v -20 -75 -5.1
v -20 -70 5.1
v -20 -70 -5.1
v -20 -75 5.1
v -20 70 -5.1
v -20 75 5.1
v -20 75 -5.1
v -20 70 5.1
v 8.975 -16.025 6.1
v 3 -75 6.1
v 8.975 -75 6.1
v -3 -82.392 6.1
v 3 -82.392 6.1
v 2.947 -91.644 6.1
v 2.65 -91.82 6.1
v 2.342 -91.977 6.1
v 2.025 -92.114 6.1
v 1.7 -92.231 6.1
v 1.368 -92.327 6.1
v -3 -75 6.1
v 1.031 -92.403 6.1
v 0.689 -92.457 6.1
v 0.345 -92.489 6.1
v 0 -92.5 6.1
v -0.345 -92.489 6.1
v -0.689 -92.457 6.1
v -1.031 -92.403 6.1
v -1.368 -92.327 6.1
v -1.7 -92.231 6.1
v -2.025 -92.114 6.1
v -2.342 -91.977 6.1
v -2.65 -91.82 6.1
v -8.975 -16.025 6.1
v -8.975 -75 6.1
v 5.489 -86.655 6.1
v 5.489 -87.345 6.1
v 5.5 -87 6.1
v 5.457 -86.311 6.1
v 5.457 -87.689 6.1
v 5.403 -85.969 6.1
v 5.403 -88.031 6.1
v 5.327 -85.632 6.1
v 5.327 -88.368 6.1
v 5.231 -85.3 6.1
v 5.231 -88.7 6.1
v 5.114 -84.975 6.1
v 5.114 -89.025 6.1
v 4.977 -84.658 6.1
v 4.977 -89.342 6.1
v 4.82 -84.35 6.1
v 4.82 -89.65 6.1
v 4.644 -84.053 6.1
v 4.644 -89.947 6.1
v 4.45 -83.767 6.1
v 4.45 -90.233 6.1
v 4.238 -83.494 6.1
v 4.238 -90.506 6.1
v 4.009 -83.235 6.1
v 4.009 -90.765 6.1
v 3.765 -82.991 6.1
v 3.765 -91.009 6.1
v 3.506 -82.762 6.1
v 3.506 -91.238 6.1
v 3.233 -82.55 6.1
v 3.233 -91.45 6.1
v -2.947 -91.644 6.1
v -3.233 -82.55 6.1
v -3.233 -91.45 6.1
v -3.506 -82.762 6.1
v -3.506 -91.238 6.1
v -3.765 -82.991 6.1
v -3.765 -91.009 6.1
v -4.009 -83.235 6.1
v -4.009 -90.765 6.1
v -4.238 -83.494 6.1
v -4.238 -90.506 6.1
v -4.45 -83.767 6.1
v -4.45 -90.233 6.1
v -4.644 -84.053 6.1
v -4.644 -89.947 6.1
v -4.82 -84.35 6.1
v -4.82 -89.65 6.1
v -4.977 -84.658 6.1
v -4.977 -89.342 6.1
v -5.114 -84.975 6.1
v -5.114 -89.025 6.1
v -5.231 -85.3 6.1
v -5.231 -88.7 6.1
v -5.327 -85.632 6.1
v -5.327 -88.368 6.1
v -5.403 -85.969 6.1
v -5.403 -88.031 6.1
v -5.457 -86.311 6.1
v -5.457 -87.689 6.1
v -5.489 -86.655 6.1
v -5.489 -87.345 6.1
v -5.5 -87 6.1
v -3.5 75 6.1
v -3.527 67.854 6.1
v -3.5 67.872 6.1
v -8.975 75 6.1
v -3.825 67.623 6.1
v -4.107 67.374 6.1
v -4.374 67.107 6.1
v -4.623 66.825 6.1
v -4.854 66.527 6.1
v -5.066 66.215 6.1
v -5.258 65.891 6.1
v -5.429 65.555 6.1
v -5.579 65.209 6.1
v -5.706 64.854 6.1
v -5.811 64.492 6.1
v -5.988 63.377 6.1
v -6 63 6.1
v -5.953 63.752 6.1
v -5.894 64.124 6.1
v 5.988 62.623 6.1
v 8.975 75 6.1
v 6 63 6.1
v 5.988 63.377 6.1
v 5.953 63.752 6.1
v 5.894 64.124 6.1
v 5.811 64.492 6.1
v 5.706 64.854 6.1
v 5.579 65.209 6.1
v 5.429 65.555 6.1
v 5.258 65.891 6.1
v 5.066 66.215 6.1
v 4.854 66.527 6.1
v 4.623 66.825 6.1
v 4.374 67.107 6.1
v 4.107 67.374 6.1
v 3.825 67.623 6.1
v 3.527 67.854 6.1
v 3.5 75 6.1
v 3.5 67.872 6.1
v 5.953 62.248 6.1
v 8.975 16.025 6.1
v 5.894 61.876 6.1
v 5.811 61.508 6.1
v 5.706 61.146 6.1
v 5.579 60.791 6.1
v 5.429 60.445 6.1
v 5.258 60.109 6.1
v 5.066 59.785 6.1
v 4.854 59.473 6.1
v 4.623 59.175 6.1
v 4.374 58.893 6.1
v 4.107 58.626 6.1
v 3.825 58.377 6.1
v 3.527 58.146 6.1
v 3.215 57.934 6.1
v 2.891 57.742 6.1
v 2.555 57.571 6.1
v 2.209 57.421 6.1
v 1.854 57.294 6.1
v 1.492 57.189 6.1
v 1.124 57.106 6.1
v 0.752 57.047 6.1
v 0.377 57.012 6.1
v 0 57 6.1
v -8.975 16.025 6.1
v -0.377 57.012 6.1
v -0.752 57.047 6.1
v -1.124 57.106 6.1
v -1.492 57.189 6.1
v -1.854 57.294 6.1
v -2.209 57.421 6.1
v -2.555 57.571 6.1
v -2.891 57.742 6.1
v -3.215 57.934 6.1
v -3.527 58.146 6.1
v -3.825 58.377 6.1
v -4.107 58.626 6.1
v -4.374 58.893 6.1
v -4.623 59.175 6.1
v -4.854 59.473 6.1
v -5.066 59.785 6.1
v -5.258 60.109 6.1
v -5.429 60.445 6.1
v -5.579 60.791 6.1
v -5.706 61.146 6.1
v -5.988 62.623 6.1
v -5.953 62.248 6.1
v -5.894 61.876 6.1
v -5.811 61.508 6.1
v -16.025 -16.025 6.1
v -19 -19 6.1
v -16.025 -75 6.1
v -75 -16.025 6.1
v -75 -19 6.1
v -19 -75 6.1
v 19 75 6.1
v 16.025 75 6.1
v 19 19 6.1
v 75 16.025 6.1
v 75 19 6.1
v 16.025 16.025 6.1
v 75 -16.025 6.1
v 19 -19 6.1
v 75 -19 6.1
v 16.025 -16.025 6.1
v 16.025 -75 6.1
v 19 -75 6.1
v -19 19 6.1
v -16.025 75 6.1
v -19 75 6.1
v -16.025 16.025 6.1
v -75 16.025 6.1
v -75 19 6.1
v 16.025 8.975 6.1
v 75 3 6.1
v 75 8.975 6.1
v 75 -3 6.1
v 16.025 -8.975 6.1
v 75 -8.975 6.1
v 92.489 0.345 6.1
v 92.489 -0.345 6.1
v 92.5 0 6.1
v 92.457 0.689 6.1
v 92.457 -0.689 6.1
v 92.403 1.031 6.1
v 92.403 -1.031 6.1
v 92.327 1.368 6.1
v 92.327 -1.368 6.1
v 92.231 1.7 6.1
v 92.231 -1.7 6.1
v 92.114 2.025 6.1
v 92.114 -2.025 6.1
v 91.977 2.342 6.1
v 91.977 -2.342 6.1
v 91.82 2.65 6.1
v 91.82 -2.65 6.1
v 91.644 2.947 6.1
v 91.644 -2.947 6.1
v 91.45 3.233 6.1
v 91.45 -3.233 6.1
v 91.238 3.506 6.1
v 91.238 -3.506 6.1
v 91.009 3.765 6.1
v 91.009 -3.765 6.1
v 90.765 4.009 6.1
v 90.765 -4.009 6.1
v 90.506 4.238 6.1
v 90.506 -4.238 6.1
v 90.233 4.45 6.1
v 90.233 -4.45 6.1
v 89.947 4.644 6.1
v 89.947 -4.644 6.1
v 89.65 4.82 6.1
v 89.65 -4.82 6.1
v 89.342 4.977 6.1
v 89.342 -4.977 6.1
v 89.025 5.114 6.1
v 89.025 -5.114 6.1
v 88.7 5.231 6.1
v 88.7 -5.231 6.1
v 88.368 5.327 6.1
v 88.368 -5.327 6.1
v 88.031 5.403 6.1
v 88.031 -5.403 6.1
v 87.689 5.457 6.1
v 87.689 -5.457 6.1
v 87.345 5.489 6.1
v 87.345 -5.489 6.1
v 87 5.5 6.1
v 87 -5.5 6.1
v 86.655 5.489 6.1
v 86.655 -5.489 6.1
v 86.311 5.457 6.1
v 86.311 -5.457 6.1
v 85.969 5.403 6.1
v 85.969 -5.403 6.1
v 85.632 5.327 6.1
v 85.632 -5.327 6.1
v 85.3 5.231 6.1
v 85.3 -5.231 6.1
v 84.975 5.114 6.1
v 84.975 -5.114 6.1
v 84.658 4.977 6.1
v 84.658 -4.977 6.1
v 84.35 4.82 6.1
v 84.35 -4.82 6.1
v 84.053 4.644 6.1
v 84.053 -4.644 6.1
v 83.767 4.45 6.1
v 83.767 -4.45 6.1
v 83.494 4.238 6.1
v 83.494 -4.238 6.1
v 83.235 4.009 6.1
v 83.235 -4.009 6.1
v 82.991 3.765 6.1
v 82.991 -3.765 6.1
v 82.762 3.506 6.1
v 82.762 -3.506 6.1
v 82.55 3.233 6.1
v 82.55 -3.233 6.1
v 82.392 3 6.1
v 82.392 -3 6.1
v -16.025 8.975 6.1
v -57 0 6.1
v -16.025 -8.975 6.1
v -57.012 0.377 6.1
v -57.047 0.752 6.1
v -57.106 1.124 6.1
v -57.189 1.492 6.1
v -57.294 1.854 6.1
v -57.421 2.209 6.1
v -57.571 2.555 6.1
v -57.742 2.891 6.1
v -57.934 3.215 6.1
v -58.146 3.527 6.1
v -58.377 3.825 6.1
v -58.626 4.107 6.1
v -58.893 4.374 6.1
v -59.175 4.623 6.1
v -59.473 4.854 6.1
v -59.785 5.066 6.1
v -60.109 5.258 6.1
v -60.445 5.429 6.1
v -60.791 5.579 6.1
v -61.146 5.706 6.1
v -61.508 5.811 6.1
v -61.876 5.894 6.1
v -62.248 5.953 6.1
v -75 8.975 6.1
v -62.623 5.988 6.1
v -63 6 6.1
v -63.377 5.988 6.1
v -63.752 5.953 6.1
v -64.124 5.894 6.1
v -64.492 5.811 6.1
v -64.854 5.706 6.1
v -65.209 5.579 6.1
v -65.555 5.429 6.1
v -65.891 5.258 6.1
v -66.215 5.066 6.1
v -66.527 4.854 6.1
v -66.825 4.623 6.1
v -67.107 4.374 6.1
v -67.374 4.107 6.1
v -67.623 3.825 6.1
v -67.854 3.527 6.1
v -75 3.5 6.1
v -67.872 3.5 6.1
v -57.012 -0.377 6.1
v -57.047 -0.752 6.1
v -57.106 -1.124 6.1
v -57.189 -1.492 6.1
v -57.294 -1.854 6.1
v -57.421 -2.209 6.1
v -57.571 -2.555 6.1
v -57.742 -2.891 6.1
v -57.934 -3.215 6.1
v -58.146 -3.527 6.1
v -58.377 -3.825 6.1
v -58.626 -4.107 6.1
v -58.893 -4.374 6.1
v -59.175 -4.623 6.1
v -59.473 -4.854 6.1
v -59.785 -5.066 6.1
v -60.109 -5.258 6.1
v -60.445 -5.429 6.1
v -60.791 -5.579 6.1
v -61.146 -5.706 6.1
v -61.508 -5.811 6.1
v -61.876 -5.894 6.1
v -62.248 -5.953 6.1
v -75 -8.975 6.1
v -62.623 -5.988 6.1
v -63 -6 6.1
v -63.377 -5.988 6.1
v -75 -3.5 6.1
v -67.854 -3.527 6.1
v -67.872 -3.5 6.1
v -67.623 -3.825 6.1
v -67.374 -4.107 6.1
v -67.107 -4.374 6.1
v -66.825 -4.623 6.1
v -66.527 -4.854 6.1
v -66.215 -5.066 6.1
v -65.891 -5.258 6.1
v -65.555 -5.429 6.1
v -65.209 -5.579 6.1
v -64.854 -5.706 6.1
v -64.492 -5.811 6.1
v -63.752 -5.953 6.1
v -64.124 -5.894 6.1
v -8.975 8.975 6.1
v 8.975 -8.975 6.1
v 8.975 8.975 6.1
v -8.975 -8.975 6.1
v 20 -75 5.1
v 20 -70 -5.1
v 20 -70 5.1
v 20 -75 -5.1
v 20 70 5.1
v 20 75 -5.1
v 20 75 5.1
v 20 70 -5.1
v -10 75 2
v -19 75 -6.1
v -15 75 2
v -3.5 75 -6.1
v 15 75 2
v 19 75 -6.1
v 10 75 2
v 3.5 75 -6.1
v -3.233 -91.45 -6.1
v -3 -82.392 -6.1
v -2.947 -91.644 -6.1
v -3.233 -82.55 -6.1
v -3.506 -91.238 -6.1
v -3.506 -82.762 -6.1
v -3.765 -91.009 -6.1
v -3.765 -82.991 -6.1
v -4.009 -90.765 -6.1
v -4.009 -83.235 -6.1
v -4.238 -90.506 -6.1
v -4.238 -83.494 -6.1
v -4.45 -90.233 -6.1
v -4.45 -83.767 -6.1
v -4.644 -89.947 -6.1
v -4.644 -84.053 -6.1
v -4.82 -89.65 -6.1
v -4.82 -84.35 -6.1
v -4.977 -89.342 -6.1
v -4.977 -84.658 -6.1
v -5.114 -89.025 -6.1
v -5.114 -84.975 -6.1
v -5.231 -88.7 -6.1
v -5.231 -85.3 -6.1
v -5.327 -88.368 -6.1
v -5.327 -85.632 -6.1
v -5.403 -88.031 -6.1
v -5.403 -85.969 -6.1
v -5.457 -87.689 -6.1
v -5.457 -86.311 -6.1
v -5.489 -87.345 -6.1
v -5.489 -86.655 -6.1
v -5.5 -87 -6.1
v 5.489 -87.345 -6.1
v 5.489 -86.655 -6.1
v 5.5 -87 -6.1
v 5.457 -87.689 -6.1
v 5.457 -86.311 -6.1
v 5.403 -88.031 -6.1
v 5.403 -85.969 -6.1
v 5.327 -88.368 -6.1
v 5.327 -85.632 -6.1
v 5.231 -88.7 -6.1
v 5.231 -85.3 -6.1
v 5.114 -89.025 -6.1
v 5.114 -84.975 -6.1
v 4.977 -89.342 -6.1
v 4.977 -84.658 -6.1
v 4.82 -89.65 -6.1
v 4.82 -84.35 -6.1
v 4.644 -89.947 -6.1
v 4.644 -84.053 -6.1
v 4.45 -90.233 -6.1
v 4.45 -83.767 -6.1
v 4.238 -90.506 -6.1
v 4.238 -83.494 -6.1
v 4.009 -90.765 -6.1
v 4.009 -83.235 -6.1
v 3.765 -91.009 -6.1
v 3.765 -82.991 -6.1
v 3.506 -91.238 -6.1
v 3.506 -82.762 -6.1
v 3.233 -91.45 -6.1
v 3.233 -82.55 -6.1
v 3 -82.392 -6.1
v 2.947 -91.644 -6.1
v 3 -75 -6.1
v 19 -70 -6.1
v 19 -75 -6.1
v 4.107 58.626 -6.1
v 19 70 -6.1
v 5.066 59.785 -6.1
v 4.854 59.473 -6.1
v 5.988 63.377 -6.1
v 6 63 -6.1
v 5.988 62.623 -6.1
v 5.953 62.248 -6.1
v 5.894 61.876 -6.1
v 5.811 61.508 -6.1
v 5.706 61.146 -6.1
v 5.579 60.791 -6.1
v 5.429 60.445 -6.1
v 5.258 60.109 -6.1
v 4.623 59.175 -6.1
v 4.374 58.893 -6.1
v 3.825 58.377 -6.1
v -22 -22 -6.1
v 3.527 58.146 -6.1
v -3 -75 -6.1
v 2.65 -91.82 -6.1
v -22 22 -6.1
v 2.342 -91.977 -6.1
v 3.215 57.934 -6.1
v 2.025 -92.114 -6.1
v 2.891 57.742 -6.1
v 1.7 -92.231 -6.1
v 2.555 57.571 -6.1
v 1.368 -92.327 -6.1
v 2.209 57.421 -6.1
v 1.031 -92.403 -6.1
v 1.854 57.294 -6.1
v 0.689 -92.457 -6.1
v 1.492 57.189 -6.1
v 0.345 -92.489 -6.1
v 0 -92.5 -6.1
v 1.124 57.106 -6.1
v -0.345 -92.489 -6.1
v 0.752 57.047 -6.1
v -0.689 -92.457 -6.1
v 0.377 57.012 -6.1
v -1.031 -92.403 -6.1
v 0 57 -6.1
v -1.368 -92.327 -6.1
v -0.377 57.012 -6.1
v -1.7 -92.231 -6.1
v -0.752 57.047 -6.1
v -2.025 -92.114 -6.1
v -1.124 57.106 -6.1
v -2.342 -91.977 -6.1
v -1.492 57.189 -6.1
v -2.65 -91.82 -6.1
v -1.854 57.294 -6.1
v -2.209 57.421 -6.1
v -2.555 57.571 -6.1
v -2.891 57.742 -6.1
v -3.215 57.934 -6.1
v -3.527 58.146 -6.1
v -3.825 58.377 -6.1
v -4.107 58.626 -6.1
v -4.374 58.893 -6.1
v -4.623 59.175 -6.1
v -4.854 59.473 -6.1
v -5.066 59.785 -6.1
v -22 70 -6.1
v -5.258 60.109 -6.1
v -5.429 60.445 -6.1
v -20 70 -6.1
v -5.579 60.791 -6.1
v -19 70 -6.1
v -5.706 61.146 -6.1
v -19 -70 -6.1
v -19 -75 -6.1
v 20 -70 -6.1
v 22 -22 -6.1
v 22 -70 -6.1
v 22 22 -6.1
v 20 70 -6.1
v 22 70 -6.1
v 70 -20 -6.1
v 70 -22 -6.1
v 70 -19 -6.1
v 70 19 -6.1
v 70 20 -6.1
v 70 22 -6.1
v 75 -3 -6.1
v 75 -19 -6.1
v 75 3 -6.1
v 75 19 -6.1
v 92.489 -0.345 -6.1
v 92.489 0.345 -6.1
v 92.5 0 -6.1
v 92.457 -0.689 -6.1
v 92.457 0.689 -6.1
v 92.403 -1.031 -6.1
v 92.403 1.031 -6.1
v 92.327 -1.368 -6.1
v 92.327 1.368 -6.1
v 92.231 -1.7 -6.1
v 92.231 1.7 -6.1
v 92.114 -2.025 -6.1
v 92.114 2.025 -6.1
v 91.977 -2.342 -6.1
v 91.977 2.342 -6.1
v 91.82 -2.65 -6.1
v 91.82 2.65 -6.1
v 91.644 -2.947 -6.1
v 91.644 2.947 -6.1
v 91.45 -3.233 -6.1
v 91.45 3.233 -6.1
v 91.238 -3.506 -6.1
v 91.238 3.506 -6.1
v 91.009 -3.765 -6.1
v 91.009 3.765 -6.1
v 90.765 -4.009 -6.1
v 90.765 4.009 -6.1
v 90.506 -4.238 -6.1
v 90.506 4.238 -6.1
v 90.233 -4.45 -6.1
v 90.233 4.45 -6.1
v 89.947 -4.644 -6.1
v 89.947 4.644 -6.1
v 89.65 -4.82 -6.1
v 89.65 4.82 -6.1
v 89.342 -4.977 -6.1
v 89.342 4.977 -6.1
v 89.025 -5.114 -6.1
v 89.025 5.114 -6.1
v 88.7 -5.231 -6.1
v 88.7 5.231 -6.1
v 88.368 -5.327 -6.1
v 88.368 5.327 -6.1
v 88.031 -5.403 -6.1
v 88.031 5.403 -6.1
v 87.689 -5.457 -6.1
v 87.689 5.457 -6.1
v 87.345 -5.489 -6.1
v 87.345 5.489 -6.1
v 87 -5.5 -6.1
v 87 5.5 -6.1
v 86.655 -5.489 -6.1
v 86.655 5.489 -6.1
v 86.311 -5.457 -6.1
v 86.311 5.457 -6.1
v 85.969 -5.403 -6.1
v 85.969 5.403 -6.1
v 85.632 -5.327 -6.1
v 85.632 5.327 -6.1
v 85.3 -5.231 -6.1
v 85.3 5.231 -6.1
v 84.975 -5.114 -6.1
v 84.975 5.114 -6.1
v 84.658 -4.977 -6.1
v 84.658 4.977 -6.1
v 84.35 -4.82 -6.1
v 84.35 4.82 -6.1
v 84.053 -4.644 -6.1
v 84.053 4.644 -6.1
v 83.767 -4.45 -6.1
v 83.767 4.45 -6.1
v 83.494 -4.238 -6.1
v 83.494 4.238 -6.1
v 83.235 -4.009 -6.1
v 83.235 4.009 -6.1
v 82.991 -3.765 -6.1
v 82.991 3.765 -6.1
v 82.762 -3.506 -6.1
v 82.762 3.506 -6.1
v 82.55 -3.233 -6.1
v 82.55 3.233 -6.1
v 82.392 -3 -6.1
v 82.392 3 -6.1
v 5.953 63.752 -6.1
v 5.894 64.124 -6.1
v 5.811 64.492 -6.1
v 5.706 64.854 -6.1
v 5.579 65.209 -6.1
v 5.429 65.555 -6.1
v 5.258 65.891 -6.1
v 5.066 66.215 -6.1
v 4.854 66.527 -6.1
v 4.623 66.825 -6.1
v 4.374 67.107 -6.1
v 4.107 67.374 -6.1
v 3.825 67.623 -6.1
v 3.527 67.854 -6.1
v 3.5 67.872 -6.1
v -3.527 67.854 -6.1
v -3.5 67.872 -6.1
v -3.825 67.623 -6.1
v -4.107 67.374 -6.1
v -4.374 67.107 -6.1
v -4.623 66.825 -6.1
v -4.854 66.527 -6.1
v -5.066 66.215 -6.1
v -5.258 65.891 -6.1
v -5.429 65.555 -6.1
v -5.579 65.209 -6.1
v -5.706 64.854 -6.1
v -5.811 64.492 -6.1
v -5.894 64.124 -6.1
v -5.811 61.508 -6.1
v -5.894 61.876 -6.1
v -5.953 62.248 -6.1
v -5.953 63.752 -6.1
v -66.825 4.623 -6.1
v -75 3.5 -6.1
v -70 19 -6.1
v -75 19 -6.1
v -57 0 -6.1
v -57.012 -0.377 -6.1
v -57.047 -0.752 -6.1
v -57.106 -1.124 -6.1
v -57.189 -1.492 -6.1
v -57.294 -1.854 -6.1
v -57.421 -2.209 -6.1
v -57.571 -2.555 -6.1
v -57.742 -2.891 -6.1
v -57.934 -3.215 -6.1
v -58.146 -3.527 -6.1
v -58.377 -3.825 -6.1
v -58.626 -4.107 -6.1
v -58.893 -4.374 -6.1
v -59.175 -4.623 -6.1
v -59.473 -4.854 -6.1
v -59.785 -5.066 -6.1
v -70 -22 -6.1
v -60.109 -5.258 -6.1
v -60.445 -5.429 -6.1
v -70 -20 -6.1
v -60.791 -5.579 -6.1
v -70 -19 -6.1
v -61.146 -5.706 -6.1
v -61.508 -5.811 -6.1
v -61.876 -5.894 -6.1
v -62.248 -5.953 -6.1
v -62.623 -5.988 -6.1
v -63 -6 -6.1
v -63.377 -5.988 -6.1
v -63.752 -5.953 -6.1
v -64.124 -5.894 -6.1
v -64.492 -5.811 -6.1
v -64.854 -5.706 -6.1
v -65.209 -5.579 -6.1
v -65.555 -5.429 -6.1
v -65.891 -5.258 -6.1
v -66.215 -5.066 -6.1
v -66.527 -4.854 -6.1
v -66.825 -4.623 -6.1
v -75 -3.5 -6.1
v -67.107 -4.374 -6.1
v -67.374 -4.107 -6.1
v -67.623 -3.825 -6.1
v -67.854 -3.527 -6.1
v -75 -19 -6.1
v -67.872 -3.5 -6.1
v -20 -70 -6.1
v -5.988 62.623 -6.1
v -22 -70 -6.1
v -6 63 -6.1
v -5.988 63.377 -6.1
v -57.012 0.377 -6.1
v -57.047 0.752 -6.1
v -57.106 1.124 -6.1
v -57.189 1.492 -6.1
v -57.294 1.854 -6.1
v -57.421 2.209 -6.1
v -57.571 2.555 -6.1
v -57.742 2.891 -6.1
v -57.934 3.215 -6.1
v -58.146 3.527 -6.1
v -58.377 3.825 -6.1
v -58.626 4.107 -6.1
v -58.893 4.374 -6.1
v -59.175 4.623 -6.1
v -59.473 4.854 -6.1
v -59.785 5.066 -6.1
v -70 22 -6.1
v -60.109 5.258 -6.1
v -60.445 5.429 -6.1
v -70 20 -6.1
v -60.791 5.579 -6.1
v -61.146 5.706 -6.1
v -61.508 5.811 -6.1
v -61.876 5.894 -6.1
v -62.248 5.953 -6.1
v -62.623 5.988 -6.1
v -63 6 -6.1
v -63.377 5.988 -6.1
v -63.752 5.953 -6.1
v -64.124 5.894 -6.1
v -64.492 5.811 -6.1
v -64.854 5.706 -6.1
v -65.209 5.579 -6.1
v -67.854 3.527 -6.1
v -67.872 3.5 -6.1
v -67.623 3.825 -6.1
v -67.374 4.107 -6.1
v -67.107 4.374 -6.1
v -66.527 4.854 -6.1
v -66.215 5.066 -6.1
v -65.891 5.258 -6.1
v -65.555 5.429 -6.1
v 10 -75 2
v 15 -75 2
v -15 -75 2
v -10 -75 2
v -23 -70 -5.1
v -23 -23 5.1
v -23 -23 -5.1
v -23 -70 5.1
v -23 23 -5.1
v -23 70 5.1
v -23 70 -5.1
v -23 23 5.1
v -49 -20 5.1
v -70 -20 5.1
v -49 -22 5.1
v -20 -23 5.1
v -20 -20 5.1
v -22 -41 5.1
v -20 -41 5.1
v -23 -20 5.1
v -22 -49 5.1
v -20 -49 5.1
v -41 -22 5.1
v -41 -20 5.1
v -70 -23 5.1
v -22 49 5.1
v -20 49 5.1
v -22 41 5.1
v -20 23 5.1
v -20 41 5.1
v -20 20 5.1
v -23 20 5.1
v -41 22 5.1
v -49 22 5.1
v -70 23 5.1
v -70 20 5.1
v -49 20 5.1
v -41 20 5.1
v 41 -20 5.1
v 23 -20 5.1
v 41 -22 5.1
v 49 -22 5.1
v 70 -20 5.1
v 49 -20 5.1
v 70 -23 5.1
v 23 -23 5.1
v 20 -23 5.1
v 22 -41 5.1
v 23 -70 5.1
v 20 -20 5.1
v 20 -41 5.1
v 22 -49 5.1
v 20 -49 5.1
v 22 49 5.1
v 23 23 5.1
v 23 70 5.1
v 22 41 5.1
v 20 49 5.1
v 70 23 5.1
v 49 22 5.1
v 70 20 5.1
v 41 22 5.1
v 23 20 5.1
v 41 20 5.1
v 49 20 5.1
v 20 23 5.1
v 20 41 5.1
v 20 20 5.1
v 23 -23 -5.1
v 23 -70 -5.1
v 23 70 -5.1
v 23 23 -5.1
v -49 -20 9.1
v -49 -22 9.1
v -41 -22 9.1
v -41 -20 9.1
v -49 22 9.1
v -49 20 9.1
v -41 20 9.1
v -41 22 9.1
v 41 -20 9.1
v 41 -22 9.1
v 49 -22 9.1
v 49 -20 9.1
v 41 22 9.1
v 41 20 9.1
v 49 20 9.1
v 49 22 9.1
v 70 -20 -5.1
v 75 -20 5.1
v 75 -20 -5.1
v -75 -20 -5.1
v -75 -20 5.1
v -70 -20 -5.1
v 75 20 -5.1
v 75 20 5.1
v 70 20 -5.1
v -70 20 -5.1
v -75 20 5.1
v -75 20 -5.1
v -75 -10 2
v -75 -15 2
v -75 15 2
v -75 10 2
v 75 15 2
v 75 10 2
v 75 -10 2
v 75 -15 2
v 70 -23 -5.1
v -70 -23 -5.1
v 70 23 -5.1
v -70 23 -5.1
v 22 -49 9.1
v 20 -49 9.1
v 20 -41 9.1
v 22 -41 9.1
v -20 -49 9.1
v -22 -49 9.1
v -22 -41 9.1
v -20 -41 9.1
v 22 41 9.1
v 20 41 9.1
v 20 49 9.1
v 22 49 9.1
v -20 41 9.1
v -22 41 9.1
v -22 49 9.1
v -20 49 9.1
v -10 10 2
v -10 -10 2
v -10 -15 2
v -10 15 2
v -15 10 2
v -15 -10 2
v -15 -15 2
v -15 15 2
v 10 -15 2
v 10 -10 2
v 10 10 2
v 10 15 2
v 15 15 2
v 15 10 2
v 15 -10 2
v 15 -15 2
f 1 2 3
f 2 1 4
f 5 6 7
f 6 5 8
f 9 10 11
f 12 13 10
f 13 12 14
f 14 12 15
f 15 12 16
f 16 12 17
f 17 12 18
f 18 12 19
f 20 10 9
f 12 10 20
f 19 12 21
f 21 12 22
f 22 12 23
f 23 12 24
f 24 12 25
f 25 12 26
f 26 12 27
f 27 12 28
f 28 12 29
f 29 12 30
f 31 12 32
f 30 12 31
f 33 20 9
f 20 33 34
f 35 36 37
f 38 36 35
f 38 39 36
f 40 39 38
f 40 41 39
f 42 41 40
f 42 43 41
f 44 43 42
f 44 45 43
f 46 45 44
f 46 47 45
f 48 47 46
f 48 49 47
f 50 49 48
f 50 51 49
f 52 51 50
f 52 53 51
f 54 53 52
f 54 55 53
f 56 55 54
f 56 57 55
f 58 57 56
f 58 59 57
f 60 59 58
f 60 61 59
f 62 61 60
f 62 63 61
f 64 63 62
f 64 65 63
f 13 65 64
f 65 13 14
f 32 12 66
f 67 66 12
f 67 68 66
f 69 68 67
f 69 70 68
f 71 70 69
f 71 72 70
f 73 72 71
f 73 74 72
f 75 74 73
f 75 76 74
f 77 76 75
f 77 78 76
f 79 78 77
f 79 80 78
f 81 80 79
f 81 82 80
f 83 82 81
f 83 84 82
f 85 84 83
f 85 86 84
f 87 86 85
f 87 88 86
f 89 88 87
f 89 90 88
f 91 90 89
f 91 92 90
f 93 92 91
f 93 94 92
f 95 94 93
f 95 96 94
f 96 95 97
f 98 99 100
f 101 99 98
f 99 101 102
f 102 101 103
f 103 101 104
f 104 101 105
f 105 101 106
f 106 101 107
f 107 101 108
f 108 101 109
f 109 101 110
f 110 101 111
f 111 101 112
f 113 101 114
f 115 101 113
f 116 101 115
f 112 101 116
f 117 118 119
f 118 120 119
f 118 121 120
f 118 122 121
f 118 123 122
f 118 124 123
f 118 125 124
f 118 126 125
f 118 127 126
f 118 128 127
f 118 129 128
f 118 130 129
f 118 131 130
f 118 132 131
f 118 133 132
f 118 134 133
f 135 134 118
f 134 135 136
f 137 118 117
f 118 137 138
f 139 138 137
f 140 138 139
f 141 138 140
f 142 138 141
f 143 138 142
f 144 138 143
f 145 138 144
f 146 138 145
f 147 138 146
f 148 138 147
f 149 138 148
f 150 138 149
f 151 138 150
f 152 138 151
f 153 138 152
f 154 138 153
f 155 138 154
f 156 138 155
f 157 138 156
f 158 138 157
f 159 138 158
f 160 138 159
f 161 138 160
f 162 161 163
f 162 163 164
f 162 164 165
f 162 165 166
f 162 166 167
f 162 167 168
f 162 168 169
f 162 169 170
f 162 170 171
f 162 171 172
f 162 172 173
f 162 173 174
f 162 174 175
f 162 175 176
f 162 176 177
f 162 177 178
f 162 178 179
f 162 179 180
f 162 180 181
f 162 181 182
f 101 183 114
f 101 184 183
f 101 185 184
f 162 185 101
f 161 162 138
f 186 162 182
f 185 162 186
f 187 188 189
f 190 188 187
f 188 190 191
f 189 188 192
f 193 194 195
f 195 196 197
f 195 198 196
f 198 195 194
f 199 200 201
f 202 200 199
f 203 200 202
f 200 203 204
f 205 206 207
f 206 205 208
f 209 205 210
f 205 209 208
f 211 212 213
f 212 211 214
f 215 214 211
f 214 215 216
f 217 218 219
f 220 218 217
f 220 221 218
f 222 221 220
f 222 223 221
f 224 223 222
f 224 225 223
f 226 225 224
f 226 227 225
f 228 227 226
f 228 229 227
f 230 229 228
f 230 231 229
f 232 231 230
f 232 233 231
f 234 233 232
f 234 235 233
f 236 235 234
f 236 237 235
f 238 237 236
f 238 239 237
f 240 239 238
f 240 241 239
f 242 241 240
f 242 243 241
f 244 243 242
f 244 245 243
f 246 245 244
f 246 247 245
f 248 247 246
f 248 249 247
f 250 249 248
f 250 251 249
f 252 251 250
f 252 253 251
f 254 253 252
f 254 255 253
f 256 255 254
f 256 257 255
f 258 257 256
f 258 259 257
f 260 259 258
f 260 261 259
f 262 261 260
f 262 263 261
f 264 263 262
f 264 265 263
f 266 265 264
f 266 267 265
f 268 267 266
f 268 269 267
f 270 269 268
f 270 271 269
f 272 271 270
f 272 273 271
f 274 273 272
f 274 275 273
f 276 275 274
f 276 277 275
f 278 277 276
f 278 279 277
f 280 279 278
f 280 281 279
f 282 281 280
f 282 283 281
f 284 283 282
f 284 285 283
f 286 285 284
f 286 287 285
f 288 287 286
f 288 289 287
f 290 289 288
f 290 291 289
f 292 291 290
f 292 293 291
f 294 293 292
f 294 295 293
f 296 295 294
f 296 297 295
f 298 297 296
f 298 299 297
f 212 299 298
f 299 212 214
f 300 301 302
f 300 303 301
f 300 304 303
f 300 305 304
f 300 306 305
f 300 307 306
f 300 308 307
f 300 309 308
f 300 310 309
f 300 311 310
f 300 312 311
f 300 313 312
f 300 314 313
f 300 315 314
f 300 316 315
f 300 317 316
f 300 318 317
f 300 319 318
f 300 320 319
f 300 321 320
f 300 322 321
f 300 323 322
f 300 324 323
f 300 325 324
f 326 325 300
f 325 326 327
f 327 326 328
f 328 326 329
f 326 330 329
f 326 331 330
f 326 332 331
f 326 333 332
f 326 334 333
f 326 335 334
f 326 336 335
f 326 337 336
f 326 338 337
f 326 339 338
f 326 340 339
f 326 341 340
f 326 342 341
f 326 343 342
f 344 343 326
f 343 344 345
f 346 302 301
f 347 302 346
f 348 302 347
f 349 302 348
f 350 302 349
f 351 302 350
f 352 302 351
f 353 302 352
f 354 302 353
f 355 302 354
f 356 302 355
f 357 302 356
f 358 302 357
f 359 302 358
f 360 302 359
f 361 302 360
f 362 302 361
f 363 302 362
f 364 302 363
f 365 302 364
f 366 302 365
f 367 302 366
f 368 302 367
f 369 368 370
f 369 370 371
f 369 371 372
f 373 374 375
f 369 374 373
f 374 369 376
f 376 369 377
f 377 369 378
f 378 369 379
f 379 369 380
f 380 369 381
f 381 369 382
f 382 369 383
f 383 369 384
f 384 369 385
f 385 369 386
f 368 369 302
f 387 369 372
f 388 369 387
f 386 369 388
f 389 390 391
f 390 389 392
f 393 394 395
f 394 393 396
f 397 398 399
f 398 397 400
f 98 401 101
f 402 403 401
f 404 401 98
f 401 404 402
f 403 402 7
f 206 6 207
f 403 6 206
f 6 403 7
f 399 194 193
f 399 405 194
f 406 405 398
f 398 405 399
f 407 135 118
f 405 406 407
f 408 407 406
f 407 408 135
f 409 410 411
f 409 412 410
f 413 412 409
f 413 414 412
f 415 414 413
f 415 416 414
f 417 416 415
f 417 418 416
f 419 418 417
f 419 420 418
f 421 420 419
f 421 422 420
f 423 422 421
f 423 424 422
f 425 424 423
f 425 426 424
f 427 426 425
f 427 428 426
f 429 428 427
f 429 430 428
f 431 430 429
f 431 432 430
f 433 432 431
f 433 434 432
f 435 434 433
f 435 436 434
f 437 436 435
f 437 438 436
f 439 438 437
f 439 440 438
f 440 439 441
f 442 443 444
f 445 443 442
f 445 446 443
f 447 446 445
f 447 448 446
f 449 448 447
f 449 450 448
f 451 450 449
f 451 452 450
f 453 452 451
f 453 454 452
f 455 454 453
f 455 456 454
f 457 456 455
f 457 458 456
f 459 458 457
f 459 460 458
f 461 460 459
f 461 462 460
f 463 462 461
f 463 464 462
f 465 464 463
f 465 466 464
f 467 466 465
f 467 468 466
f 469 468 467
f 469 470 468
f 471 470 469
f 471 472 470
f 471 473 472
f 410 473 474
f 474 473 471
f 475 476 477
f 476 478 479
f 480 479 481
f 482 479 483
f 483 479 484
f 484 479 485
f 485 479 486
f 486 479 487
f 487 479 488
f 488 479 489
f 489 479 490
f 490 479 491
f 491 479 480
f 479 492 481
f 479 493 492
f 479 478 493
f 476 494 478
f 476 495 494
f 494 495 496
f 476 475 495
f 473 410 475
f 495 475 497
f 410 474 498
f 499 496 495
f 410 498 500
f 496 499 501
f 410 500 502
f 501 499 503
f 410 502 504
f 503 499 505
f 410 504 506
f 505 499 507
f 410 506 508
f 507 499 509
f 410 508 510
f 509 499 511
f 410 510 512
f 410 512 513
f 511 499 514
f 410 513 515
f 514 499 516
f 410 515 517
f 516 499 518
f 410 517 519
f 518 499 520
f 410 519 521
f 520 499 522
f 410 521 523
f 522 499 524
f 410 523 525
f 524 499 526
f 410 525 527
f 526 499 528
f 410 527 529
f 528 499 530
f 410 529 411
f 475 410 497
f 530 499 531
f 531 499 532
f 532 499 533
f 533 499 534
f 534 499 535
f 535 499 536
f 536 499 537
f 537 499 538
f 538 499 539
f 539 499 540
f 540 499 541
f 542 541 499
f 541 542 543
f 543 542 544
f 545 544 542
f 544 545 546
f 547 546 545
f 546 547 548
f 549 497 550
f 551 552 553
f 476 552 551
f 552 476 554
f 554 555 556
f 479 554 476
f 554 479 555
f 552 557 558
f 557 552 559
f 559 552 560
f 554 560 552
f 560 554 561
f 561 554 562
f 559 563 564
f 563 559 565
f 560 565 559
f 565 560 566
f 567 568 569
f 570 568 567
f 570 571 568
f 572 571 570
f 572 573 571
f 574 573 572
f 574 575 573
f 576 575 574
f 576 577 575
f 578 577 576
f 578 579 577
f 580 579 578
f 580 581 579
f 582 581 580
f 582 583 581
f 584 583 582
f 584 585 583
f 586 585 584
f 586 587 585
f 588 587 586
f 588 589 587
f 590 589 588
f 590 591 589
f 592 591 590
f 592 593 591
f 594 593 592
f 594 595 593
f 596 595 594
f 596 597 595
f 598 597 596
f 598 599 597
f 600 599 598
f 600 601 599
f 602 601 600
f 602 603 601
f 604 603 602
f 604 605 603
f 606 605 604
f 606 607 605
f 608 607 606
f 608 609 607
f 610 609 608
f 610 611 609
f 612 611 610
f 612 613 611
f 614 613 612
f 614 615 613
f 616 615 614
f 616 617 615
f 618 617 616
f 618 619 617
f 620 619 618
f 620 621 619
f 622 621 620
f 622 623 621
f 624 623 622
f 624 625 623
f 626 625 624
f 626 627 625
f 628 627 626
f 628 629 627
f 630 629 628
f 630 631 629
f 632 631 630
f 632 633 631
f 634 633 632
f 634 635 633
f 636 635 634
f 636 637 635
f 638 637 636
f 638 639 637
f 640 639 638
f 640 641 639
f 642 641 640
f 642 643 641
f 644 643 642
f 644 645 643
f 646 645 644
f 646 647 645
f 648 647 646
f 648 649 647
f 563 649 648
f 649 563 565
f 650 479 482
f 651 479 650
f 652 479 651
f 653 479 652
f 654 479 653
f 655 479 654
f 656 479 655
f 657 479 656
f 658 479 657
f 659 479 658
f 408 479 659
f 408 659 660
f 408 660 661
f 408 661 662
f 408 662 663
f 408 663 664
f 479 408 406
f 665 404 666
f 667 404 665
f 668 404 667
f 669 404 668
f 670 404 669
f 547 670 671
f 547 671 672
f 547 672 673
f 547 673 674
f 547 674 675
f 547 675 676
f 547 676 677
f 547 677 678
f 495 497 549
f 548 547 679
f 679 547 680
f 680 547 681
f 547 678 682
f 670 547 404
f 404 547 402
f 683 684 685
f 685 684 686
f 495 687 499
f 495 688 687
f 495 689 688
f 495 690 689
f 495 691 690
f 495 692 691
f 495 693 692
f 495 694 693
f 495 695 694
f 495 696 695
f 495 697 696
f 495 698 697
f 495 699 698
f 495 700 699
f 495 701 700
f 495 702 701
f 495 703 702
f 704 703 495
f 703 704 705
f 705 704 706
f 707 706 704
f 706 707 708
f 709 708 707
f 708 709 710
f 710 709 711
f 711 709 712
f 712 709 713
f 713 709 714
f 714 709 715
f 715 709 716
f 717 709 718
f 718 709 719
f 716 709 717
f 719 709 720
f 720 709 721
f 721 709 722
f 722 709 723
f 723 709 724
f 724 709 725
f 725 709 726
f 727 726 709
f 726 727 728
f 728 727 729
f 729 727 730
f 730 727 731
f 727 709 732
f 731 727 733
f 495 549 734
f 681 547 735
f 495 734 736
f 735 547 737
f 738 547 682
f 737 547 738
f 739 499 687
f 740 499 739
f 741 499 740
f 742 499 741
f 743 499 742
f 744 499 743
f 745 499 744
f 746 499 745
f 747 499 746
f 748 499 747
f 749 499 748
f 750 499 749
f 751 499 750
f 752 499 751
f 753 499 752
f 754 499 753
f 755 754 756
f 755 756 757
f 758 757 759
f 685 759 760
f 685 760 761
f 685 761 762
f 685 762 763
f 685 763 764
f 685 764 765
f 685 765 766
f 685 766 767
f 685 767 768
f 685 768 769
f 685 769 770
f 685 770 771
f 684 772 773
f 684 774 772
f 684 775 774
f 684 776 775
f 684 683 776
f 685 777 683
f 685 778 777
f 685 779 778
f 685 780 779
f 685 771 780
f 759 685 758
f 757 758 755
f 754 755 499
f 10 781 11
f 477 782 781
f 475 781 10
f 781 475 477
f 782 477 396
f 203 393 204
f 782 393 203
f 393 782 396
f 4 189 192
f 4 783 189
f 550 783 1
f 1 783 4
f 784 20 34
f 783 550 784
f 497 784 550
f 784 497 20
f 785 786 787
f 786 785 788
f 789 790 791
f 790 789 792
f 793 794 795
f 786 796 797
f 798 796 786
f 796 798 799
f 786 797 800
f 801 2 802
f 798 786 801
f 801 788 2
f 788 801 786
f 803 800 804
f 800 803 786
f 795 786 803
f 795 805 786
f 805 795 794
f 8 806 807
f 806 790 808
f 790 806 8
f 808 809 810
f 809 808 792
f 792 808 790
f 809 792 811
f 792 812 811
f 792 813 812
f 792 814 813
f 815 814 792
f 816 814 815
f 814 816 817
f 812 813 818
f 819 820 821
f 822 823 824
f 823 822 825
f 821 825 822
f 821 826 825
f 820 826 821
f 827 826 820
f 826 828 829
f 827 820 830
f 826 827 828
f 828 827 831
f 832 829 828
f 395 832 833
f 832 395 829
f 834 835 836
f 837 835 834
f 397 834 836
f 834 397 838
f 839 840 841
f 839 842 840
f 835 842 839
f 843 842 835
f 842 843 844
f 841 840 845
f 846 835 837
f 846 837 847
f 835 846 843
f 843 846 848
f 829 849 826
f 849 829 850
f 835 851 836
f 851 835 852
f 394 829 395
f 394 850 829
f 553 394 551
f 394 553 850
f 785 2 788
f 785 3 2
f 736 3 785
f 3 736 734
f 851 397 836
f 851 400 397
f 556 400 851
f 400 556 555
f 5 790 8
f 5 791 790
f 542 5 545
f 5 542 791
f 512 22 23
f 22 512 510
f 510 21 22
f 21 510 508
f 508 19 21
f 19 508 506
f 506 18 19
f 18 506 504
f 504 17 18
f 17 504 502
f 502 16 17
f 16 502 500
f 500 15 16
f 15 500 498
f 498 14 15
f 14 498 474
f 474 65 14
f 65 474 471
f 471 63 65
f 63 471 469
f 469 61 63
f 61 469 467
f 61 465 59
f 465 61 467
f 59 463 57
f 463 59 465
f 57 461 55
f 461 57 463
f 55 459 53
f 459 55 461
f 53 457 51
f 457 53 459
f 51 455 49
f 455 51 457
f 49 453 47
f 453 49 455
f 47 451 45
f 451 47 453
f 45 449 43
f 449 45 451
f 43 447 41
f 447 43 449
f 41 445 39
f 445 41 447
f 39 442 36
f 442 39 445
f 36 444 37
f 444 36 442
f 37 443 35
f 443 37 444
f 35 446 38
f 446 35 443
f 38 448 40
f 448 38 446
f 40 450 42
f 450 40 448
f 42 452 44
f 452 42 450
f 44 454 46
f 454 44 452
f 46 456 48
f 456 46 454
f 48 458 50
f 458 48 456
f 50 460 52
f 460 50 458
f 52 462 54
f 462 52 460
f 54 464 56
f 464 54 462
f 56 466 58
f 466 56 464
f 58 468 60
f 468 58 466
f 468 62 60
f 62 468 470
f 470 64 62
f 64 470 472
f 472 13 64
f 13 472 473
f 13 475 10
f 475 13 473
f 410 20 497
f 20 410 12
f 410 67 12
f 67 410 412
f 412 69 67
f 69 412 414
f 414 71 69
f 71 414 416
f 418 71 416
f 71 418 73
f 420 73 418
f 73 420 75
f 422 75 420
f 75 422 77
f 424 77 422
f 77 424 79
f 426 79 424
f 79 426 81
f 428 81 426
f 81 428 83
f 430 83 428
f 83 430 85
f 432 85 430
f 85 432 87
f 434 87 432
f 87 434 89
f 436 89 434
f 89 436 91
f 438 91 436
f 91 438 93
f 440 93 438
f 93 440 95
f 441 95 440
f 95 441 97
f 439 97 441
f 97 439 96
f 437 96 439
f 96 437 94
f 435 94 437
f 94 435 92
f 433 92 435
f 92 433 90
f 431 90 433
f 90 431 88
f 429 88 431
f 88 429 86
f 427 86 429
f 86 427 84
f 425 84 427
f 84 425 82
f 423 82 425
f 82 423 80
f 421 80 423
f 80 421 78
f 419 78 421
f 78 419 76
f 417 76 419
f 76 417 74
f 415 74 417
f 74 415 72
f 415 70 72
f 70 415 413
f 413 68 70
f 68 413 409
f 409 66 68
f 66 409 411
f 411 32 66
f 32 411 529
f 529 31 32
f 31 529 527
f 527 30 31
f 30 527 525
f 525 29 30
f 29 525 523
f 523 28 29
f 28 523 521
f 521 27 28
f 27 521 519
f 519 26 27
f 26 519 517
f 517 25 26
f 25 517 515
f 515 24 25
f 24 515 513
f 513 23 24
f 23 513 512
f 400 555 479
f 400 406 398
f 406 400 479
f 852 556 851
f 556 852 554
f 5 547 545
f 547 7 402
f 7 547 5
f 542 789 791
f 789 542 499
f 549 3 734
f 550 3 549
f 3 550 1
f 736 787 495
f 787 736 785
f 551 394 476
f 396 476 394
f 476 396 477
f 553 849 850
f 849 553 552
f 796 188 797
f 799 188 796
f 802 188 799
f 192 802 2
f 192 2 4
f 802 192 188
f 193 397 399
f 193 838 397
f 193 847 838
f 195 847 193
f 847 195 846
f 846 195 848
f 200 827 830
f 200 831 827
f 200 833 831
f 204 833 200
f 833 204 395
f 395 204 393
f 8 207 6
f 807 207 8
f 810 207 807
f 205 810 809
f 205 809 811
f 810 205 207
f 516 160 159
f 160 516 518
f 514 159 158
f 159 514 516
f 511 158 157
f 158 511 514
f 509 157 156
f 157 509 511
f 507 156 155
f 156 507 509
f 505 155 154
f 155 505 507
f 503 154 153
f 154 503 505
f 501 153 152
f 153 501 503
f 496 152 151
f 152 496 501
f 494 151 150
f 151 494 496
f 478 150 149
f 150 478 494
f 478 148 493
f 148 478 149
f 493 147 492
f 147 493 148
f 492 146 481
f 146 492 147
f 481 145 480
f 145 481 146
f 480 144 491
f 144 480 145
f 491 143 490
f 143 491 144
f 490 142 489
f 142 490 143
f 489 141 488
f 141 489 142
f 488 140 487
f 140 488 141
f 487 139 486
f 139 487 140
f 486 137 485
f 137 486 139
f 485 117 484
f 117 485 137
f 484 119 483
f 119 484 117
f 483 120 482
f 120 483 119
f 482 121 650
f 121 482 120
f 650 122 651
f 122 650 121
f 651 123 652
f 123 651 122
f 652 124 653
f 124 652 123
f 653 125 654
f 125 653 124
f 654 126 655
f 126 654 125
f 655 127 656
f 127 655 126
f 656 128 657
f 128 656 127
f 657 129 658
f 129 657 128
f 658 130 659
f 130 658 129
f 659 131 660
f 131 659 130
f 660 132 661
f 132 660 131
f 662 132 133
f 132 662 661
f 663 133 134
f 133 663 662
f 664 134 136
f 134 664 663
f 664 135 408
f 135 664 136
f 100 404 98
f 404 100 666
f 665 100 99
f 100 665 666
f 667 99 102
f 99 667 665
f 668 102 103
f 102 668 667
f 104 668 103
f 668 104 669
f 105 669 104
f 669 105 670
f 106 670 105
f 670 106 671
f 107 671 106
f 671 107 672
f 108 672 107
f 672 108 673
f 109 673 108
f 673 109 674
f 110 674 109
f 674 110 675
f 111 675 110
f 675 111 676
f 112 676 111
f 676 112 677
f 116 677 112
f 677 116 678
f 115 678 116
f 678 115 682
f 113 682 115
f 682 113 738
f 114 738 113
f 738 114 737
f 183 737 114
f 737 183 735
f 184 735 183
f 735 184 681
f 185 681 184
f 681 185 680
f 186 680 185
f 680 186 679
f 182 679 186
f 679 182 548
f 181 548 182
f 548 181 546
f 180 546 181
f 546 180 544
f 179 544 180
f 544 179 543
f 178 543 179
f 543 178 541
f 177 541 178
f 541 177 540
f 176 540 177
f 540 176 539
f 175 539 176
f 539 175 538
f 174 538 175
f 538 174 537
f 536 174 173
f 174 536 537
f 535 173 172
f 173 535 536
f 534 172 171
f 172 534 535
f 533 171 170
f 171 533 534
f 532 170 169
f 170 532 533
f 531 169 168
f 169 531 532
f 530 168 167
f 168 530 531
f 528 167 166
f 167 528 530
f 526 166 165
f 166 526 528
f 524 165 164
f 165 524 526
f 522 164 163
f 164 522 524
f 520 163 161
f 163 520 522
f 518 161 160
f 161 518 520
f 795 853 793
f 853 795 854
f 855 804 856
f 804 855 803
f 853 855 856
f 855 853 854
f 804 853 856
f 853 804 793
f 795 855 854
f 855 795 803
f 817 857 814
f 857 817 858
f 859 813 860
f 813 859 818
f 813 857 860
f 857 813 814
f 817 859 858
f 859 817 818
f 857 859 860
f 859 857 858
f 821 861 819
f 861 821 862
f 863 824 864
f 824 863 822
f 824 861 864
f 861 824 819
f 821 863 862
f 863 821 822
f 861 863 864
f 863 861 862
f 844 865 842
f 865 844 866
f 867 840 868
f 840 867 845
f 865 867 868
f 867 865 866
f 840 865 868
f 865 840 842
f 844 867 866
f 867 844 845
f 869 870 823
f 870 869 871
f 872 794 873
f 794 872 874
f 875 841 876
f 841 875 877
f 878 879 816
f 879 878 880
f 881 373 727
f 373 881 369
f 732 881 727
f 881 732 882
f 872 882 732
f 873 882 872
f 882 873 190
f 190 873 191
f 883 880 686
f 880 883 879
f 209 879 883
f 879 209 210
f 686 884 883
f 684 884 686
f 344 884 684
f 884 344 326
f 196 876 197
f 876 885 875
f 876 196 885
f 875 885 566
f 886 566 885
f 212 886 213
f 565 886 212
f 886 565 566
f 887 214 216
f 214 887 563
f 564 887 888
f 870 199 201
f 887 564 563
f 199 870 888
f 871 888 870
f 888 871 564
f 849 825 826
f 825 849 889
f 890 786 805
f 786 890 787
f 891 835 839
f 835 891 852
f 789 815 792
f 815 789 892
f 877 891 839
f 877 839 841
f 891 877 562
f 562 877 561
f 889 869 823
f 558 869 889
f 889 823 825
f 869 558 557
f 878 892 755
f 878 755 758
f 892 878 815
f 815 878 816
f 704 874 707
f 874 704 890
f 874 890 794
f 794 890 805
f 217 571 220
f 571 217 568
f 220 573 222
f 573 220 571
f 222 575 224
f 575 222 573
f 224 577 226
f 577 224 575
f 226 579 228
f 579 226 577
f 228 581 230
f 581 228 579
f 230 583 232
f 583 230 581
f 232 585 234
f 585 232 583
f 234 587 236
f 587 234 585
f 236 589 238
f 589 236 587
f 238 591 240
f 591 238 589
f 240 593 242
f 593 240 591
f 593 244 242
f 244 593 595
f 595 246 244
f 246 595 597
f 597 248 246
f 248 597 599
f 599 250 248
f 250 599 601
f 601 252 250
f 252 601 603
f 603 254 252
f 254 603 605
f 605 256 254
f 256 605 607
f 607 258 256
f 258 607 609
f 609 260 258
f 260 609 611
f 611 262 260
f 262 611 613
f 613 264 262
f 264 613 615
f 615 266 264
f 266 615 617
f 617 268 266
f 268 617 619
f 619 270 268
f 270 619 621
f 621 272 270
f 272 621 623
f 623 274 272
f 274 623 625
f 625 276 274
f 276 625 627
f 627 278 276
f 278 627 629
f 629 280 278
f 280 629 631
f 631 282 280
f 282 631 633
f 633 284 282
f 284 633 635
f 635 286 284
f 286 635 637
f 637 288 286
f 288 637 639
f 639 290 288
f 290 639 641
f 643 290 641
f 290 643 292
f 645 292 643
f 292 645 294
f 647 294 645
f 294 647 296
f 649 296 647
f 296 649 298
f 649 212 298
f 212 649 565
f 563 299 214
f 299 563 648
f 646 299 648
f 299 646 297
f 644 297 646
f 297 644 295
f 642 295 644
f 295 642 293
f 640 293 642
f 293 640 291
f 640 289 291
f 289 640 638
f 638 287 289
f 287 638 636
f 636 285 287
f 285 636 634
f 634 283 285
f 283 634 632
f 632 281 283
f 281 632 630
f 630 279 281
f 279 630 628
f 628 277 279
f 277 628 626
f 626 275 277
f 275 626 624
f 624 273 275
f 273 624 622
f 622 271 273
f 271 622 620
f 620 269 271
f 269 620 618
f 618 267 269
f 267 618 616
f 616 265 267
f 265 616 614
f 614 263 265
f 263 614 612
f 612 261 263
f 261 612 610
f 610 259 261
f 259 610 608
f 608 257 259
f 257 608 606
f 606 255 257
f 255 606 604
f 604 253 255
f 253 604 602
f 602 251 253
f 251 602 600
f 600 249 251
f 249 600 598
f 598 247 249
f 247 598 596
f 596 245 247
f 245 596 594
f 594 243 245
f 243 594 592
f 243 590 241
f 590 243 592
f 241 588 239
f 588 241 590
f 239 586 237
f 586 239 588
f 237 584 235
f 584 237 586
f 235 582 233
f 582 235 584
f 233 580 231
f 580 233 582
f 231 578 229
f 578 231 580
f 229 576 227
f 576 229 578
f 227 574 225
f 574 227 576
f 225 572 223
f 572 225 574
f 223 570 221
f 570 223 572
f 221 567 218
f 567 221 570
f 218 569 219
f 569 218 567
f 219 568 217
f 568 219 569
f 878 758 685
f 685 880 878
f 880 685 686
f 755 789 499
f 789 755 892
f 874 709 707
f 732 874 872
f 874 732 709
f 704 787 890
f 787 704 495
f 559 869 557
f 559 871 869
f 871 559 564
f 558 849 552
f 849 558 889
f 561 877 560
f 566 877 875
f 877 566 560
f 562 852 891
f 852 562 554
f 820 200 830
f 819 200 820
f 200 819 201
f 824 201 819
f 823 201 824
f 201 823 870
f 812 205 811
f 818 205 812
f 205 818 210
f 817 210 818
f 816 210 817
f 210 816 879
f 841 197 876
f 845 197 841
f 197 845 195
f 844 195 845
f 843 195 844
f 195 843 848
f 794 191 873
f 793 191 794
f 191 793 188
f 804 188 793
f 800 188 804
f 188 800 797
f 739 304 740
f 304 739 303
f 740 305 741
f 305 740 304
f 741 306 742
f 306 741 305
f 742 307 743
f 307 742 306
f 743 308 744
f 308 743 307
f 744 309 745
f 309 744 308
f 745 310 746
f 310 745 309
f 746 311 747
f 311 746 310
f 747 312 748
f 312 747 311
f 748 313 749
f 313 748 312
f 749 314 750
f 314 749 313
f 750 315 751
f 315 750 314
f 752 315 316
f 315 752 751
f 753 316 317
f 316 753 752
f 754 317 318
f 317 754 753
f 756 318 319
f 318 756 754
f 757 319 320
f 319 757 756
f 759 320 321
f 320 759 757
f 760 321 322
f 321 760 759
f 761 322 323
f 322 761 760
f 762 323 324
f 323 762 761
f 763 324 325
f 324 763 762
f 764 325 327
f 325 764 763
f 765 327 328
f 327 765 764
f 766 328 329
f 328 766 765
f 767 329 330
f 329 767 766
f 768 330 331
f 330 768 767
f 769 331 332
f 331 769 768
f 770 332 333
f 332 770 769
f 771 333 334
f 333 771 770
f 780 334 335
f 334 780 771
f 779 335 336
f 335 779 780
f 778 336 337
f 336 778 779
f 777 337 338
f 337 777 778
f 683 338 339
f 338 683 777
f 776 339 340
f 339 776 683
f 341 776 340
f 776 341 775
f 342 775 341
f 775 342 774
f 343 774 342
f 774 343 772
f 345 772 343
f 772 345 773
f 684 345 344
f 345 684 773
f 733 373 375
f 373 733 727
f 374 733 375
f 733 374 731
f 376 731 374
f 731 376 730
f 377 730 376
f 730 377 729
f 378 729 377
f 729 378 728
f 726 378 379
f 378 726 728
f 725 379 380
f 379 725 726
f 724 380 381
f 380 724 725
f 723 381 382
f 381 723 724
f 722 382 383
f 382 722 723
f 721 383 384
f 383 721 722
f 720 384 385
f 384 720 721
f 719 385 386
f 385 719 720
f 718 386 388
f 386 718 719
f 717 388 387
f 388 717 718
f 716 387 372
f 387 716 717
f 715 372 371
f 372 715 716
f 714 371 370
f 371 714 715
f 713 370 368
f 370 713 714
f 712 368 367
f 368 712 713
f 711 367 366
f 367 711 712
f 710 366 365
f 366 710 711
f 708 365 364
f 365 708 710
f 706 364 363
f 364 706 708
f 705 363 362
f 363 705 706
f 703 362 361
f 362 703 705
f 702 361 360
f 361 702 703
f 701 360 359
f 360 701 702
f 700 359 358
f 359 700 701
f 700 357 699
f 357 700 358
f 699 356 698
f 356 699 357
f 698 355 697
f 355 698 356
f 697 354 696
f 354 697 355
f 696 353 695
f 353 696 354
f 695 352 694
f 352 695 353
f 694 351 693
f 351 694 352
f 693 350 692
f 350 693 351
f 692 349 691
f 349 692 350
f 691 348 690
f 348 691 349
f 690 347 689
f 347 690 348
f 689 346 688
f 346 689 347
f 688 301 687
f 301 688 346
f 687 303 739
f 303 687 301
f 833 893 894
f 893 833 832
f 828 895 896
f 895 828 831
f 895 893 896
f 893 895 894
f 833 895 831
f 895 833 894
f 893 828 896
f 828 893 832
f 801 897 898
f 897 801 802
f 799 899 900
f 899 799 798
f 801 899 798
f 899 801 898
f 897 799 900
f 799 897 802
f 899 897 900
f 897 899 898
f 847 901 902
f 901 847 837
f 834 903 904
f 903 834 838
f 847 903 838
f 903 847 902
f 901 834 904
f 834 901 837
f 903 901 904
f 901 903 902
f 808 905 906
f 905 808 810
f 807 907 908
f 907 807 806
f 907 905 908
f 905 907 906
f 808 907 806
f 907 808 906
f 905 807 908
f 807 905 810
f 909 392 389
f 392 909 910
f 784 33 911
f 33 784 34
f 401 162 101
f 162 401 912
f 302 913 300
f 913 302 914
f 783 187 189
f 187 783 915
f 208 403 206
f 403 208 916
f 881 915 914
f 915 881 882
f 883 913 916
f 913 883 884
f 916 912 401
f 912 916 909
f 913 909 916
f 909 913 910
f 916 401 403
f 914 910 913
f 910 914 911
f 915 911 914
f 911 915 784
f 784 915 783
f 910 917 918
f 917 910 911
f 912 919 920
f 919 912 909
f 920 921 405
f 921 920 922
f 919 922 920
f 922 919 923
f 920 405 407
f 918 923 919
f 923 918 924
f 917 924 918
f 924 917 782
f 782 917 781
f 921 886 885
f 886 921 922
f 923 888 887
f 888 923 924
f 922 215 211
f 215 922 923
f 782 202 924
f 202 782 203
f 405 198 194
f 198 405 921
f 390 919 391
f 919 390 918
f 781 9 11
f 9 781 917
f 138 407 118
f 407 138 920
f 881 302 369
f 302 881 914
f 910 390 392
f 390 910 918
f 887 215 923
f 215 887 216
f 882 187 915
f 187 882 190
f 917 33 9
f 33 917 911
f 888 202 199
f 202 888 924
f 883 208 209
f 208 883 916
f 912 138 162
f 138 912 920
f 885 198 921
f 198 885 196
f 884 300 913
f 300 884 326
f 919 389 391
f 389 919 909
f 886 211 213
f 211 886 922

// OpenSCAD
$fn = 100;

trackWidth = 40;
trackHeight = 12.2;
trackLength = 150;
trackChamfer = 1;

buildingLength = 140;
buildingWidth = 46;
buildingInsetDepth = 1;
buildingLinkLength = 8;
buildingLinkOffset = 45;
buildingLinkWidth = 2;
buildingLinkDepth = 4;

linkOffset = 12;
linkWidth = 6;
linkSize = 11;

railWidth = 7;
railOffset = 4;
railDepth = 4;

difference() {
  union() {
    renderTrack();
    renderBuildingLinks();
    rotate([0, 0, 90]) {
      renderTrack();
      renderBuildingLinks();
    }
  }

  union() {
    renderRails();
    rotate([0, 0, 90]) {
      renderRails();
    }
  }
}

module renderTrack() {
  difference() {
    union() {
      cube([trackWidth, trackLength, trackHeight], center=true);
      translate([0, 0, -buildingInsetDepth / 2]) {
        cube([buildingWidth, buildingLength, trackHeight - buildingInsetDepth], center=true);
      }
      renderMaleLink();
    }
    renderFemaleLink();
    renderBottomChamfers();
    renderTopChamfers();
  }
}

module renderFemaleLink() {
  translate([0, trackLength / 2 - linkOffset, -trackHeight / 2 - .5]) {
    linear_extrude(trackHeight + 1) {
      circle(d=linkSize + 1);
      translate([0, linkOffset / 2, 0]) {
        square([linkWidth + 1, linkOffset + 1], center=true);
      }
    }
  }
}

module renderMaleLink() {
  translate([0, -trackLength / 2 - linkOffset, -trackHeight / 2]) {
    linear_extrude(trackHeight) {
      circle(d=linkSize);
      translate([0, linkOffset / 2, 0]) {
        square([linkWidth, linkOffset], center=true);
      }
    }
  }
}

module renderBottomChamfers() {
  renderLeftFront();
  renderLeftRear();
  rotate([0, 0, 180]) {
    renderLeftFront();
    renderLeftRear();
  }

  renderRightFront();
  renderRightRear();
  rotate([0, 0, 180]) {
    renderRightFront();
    renderRightRear();
  }

  module renderLeftFront() {
    length = (trackLength - buildingLength) / 2;
    translate([-trackWidth / 2, -trackLength / 2 + length, -trackHeight / 2]) {
      rotate([90, 0, 0]) {
        linear_extrude(length) {
          polygon(
            [
              [0, trackChamfer],
              [trackChamfer, 0],
              [0, 0],
            ]
          );
        }
      }
    }
  }

  module renderLeftRear() {
    length = (trackLength - buildingWidth) / 2;
    translate([-buildingWidth / 2, -trackLength / 2 + length + trackChamfer, -trackHeight / 2]) {
      rotate([90, 0, 0]) {
        linear_extrude(length + trackChamfer) {
          polygon(
            [
              [0, trackChamfer],
              [trackChamfer, 0],
              [0, 0],
            ]
          );
        }
      }
    }
  }

  module renderRightFront() {
    length = (trackLength - buildingLength) / 2;
    translate([trackWidth / 2, -trackLength / 2 + length, -trackHeight / 2]) {
      rotate([90, 0, 0]) {
        linear_extrude(length) {
          polygon(
            [
              [0, trackChamfer],
              [0, 0],
              [-trackChamfer, 0],
            ]
          );
        }
      }
    }
  }

  module renderRightRear() {
    length = (trackLength - buildingWidth) / 2;
    translate([buildingWidth / 2, -trackLength / 2 + length + trackChamfer, -trackHeight / 2]) {
      rotate([90, 0, 0]) {
        linear_extrude(length + trackChamfer) {
          polygon(
            [
              [0, trackChamfer],
              [0, 0],
              [-trackChamfer, 0],
            ]
          );
        }
      }
    }
  }
}

module renderTopChamfers() {
  renderLeft();
  rotate([0, 0, 180]) {
    renderLeft();
  }

  renderRight();
  rotate([0, 0, 180]) {
    renderRight();
  }

  module renderLeft() {
    length = (trackLength - trackWidth) / 2;
    translate([-trackWidth / 2, -trackLength / 2 + length + trackChamfer, trackHeight / 2]) {
      rotate([90, 0, 0]) {
        linear_extrude(length + trackChamfer) {
          polygon(
            [
              [0, 0],
              [trackChamfer, 0],
              [0, -trackChamfer],
            ]
          );
        }
      }
    }
  }

  module renderRight() {
    length = (trackLength - trackWidth) / 2;
    translate([trackWidth / 2, -trackLength / 2 + length + trackChamfer, trackHeight / 2]) {
      rotate([90, 0, 0]) {
        linear_extrude(length + trackChamfer) {
          polygon(
            [
              [0, 0],
              [0, -trackChamfer],
              [-trackChamfer, 0],
            ]
          );
        }
      }
    }
  }
}

module renderBuildingLinks() {
  for (y = [-1:1]) {
    if (y != 0) {
      for (x = [-1:1]) {
        if (x != 0) {
          translate([y * buildingLinkOffset, x * (buildingWidth / 2 - (buildingWidth - trackWidth) / 4 - buildingLinkWidth / 4), trackHeight / 2 - buildingInsetDepth]) {
            linear_extrude(buildingLinkDepth) {
              polygon(
                [
                  [-buildingLinkLength / 2, -buildingLinkWidth / 2],
                  [buildingLinkLength / 2, -buildingLinkWidth / 2],
                  [buildingLinkLength / 2, buildingLinkWidth / 2],
                  [-buildingLinkLength / 2, buildingLinkWidth / 2],
                ]
              );
            }
          }
        }
      }
    }
  }
}

module renderRails() {
  union() {
    translate([-(trackWidth - railWidth) / 2 + railOffset, 0, 0]) {
      renderRail();
    }
    translate([(trackWidth - railWidth) / 2 - railOffset, 0, 0]) {
      renderRail();
    }
  }
}

module renderRail() {
  translate([0, trackLength / 2 + .5, railDepth * 1.5]) {
    rotate([90, 0, 0]) {
      linear_extrude(trackLength + 1) {
        polygon(
          [
            [-railWidth / 2 - 1, railDepth],
            [-railWidth / 2 + 1, -railDepth],
            [railWidth / 2 - 1, -railDepth],
            [railWidth / 2 + 1, railDepth],
          ]
        );
      }
    }
  }
}
